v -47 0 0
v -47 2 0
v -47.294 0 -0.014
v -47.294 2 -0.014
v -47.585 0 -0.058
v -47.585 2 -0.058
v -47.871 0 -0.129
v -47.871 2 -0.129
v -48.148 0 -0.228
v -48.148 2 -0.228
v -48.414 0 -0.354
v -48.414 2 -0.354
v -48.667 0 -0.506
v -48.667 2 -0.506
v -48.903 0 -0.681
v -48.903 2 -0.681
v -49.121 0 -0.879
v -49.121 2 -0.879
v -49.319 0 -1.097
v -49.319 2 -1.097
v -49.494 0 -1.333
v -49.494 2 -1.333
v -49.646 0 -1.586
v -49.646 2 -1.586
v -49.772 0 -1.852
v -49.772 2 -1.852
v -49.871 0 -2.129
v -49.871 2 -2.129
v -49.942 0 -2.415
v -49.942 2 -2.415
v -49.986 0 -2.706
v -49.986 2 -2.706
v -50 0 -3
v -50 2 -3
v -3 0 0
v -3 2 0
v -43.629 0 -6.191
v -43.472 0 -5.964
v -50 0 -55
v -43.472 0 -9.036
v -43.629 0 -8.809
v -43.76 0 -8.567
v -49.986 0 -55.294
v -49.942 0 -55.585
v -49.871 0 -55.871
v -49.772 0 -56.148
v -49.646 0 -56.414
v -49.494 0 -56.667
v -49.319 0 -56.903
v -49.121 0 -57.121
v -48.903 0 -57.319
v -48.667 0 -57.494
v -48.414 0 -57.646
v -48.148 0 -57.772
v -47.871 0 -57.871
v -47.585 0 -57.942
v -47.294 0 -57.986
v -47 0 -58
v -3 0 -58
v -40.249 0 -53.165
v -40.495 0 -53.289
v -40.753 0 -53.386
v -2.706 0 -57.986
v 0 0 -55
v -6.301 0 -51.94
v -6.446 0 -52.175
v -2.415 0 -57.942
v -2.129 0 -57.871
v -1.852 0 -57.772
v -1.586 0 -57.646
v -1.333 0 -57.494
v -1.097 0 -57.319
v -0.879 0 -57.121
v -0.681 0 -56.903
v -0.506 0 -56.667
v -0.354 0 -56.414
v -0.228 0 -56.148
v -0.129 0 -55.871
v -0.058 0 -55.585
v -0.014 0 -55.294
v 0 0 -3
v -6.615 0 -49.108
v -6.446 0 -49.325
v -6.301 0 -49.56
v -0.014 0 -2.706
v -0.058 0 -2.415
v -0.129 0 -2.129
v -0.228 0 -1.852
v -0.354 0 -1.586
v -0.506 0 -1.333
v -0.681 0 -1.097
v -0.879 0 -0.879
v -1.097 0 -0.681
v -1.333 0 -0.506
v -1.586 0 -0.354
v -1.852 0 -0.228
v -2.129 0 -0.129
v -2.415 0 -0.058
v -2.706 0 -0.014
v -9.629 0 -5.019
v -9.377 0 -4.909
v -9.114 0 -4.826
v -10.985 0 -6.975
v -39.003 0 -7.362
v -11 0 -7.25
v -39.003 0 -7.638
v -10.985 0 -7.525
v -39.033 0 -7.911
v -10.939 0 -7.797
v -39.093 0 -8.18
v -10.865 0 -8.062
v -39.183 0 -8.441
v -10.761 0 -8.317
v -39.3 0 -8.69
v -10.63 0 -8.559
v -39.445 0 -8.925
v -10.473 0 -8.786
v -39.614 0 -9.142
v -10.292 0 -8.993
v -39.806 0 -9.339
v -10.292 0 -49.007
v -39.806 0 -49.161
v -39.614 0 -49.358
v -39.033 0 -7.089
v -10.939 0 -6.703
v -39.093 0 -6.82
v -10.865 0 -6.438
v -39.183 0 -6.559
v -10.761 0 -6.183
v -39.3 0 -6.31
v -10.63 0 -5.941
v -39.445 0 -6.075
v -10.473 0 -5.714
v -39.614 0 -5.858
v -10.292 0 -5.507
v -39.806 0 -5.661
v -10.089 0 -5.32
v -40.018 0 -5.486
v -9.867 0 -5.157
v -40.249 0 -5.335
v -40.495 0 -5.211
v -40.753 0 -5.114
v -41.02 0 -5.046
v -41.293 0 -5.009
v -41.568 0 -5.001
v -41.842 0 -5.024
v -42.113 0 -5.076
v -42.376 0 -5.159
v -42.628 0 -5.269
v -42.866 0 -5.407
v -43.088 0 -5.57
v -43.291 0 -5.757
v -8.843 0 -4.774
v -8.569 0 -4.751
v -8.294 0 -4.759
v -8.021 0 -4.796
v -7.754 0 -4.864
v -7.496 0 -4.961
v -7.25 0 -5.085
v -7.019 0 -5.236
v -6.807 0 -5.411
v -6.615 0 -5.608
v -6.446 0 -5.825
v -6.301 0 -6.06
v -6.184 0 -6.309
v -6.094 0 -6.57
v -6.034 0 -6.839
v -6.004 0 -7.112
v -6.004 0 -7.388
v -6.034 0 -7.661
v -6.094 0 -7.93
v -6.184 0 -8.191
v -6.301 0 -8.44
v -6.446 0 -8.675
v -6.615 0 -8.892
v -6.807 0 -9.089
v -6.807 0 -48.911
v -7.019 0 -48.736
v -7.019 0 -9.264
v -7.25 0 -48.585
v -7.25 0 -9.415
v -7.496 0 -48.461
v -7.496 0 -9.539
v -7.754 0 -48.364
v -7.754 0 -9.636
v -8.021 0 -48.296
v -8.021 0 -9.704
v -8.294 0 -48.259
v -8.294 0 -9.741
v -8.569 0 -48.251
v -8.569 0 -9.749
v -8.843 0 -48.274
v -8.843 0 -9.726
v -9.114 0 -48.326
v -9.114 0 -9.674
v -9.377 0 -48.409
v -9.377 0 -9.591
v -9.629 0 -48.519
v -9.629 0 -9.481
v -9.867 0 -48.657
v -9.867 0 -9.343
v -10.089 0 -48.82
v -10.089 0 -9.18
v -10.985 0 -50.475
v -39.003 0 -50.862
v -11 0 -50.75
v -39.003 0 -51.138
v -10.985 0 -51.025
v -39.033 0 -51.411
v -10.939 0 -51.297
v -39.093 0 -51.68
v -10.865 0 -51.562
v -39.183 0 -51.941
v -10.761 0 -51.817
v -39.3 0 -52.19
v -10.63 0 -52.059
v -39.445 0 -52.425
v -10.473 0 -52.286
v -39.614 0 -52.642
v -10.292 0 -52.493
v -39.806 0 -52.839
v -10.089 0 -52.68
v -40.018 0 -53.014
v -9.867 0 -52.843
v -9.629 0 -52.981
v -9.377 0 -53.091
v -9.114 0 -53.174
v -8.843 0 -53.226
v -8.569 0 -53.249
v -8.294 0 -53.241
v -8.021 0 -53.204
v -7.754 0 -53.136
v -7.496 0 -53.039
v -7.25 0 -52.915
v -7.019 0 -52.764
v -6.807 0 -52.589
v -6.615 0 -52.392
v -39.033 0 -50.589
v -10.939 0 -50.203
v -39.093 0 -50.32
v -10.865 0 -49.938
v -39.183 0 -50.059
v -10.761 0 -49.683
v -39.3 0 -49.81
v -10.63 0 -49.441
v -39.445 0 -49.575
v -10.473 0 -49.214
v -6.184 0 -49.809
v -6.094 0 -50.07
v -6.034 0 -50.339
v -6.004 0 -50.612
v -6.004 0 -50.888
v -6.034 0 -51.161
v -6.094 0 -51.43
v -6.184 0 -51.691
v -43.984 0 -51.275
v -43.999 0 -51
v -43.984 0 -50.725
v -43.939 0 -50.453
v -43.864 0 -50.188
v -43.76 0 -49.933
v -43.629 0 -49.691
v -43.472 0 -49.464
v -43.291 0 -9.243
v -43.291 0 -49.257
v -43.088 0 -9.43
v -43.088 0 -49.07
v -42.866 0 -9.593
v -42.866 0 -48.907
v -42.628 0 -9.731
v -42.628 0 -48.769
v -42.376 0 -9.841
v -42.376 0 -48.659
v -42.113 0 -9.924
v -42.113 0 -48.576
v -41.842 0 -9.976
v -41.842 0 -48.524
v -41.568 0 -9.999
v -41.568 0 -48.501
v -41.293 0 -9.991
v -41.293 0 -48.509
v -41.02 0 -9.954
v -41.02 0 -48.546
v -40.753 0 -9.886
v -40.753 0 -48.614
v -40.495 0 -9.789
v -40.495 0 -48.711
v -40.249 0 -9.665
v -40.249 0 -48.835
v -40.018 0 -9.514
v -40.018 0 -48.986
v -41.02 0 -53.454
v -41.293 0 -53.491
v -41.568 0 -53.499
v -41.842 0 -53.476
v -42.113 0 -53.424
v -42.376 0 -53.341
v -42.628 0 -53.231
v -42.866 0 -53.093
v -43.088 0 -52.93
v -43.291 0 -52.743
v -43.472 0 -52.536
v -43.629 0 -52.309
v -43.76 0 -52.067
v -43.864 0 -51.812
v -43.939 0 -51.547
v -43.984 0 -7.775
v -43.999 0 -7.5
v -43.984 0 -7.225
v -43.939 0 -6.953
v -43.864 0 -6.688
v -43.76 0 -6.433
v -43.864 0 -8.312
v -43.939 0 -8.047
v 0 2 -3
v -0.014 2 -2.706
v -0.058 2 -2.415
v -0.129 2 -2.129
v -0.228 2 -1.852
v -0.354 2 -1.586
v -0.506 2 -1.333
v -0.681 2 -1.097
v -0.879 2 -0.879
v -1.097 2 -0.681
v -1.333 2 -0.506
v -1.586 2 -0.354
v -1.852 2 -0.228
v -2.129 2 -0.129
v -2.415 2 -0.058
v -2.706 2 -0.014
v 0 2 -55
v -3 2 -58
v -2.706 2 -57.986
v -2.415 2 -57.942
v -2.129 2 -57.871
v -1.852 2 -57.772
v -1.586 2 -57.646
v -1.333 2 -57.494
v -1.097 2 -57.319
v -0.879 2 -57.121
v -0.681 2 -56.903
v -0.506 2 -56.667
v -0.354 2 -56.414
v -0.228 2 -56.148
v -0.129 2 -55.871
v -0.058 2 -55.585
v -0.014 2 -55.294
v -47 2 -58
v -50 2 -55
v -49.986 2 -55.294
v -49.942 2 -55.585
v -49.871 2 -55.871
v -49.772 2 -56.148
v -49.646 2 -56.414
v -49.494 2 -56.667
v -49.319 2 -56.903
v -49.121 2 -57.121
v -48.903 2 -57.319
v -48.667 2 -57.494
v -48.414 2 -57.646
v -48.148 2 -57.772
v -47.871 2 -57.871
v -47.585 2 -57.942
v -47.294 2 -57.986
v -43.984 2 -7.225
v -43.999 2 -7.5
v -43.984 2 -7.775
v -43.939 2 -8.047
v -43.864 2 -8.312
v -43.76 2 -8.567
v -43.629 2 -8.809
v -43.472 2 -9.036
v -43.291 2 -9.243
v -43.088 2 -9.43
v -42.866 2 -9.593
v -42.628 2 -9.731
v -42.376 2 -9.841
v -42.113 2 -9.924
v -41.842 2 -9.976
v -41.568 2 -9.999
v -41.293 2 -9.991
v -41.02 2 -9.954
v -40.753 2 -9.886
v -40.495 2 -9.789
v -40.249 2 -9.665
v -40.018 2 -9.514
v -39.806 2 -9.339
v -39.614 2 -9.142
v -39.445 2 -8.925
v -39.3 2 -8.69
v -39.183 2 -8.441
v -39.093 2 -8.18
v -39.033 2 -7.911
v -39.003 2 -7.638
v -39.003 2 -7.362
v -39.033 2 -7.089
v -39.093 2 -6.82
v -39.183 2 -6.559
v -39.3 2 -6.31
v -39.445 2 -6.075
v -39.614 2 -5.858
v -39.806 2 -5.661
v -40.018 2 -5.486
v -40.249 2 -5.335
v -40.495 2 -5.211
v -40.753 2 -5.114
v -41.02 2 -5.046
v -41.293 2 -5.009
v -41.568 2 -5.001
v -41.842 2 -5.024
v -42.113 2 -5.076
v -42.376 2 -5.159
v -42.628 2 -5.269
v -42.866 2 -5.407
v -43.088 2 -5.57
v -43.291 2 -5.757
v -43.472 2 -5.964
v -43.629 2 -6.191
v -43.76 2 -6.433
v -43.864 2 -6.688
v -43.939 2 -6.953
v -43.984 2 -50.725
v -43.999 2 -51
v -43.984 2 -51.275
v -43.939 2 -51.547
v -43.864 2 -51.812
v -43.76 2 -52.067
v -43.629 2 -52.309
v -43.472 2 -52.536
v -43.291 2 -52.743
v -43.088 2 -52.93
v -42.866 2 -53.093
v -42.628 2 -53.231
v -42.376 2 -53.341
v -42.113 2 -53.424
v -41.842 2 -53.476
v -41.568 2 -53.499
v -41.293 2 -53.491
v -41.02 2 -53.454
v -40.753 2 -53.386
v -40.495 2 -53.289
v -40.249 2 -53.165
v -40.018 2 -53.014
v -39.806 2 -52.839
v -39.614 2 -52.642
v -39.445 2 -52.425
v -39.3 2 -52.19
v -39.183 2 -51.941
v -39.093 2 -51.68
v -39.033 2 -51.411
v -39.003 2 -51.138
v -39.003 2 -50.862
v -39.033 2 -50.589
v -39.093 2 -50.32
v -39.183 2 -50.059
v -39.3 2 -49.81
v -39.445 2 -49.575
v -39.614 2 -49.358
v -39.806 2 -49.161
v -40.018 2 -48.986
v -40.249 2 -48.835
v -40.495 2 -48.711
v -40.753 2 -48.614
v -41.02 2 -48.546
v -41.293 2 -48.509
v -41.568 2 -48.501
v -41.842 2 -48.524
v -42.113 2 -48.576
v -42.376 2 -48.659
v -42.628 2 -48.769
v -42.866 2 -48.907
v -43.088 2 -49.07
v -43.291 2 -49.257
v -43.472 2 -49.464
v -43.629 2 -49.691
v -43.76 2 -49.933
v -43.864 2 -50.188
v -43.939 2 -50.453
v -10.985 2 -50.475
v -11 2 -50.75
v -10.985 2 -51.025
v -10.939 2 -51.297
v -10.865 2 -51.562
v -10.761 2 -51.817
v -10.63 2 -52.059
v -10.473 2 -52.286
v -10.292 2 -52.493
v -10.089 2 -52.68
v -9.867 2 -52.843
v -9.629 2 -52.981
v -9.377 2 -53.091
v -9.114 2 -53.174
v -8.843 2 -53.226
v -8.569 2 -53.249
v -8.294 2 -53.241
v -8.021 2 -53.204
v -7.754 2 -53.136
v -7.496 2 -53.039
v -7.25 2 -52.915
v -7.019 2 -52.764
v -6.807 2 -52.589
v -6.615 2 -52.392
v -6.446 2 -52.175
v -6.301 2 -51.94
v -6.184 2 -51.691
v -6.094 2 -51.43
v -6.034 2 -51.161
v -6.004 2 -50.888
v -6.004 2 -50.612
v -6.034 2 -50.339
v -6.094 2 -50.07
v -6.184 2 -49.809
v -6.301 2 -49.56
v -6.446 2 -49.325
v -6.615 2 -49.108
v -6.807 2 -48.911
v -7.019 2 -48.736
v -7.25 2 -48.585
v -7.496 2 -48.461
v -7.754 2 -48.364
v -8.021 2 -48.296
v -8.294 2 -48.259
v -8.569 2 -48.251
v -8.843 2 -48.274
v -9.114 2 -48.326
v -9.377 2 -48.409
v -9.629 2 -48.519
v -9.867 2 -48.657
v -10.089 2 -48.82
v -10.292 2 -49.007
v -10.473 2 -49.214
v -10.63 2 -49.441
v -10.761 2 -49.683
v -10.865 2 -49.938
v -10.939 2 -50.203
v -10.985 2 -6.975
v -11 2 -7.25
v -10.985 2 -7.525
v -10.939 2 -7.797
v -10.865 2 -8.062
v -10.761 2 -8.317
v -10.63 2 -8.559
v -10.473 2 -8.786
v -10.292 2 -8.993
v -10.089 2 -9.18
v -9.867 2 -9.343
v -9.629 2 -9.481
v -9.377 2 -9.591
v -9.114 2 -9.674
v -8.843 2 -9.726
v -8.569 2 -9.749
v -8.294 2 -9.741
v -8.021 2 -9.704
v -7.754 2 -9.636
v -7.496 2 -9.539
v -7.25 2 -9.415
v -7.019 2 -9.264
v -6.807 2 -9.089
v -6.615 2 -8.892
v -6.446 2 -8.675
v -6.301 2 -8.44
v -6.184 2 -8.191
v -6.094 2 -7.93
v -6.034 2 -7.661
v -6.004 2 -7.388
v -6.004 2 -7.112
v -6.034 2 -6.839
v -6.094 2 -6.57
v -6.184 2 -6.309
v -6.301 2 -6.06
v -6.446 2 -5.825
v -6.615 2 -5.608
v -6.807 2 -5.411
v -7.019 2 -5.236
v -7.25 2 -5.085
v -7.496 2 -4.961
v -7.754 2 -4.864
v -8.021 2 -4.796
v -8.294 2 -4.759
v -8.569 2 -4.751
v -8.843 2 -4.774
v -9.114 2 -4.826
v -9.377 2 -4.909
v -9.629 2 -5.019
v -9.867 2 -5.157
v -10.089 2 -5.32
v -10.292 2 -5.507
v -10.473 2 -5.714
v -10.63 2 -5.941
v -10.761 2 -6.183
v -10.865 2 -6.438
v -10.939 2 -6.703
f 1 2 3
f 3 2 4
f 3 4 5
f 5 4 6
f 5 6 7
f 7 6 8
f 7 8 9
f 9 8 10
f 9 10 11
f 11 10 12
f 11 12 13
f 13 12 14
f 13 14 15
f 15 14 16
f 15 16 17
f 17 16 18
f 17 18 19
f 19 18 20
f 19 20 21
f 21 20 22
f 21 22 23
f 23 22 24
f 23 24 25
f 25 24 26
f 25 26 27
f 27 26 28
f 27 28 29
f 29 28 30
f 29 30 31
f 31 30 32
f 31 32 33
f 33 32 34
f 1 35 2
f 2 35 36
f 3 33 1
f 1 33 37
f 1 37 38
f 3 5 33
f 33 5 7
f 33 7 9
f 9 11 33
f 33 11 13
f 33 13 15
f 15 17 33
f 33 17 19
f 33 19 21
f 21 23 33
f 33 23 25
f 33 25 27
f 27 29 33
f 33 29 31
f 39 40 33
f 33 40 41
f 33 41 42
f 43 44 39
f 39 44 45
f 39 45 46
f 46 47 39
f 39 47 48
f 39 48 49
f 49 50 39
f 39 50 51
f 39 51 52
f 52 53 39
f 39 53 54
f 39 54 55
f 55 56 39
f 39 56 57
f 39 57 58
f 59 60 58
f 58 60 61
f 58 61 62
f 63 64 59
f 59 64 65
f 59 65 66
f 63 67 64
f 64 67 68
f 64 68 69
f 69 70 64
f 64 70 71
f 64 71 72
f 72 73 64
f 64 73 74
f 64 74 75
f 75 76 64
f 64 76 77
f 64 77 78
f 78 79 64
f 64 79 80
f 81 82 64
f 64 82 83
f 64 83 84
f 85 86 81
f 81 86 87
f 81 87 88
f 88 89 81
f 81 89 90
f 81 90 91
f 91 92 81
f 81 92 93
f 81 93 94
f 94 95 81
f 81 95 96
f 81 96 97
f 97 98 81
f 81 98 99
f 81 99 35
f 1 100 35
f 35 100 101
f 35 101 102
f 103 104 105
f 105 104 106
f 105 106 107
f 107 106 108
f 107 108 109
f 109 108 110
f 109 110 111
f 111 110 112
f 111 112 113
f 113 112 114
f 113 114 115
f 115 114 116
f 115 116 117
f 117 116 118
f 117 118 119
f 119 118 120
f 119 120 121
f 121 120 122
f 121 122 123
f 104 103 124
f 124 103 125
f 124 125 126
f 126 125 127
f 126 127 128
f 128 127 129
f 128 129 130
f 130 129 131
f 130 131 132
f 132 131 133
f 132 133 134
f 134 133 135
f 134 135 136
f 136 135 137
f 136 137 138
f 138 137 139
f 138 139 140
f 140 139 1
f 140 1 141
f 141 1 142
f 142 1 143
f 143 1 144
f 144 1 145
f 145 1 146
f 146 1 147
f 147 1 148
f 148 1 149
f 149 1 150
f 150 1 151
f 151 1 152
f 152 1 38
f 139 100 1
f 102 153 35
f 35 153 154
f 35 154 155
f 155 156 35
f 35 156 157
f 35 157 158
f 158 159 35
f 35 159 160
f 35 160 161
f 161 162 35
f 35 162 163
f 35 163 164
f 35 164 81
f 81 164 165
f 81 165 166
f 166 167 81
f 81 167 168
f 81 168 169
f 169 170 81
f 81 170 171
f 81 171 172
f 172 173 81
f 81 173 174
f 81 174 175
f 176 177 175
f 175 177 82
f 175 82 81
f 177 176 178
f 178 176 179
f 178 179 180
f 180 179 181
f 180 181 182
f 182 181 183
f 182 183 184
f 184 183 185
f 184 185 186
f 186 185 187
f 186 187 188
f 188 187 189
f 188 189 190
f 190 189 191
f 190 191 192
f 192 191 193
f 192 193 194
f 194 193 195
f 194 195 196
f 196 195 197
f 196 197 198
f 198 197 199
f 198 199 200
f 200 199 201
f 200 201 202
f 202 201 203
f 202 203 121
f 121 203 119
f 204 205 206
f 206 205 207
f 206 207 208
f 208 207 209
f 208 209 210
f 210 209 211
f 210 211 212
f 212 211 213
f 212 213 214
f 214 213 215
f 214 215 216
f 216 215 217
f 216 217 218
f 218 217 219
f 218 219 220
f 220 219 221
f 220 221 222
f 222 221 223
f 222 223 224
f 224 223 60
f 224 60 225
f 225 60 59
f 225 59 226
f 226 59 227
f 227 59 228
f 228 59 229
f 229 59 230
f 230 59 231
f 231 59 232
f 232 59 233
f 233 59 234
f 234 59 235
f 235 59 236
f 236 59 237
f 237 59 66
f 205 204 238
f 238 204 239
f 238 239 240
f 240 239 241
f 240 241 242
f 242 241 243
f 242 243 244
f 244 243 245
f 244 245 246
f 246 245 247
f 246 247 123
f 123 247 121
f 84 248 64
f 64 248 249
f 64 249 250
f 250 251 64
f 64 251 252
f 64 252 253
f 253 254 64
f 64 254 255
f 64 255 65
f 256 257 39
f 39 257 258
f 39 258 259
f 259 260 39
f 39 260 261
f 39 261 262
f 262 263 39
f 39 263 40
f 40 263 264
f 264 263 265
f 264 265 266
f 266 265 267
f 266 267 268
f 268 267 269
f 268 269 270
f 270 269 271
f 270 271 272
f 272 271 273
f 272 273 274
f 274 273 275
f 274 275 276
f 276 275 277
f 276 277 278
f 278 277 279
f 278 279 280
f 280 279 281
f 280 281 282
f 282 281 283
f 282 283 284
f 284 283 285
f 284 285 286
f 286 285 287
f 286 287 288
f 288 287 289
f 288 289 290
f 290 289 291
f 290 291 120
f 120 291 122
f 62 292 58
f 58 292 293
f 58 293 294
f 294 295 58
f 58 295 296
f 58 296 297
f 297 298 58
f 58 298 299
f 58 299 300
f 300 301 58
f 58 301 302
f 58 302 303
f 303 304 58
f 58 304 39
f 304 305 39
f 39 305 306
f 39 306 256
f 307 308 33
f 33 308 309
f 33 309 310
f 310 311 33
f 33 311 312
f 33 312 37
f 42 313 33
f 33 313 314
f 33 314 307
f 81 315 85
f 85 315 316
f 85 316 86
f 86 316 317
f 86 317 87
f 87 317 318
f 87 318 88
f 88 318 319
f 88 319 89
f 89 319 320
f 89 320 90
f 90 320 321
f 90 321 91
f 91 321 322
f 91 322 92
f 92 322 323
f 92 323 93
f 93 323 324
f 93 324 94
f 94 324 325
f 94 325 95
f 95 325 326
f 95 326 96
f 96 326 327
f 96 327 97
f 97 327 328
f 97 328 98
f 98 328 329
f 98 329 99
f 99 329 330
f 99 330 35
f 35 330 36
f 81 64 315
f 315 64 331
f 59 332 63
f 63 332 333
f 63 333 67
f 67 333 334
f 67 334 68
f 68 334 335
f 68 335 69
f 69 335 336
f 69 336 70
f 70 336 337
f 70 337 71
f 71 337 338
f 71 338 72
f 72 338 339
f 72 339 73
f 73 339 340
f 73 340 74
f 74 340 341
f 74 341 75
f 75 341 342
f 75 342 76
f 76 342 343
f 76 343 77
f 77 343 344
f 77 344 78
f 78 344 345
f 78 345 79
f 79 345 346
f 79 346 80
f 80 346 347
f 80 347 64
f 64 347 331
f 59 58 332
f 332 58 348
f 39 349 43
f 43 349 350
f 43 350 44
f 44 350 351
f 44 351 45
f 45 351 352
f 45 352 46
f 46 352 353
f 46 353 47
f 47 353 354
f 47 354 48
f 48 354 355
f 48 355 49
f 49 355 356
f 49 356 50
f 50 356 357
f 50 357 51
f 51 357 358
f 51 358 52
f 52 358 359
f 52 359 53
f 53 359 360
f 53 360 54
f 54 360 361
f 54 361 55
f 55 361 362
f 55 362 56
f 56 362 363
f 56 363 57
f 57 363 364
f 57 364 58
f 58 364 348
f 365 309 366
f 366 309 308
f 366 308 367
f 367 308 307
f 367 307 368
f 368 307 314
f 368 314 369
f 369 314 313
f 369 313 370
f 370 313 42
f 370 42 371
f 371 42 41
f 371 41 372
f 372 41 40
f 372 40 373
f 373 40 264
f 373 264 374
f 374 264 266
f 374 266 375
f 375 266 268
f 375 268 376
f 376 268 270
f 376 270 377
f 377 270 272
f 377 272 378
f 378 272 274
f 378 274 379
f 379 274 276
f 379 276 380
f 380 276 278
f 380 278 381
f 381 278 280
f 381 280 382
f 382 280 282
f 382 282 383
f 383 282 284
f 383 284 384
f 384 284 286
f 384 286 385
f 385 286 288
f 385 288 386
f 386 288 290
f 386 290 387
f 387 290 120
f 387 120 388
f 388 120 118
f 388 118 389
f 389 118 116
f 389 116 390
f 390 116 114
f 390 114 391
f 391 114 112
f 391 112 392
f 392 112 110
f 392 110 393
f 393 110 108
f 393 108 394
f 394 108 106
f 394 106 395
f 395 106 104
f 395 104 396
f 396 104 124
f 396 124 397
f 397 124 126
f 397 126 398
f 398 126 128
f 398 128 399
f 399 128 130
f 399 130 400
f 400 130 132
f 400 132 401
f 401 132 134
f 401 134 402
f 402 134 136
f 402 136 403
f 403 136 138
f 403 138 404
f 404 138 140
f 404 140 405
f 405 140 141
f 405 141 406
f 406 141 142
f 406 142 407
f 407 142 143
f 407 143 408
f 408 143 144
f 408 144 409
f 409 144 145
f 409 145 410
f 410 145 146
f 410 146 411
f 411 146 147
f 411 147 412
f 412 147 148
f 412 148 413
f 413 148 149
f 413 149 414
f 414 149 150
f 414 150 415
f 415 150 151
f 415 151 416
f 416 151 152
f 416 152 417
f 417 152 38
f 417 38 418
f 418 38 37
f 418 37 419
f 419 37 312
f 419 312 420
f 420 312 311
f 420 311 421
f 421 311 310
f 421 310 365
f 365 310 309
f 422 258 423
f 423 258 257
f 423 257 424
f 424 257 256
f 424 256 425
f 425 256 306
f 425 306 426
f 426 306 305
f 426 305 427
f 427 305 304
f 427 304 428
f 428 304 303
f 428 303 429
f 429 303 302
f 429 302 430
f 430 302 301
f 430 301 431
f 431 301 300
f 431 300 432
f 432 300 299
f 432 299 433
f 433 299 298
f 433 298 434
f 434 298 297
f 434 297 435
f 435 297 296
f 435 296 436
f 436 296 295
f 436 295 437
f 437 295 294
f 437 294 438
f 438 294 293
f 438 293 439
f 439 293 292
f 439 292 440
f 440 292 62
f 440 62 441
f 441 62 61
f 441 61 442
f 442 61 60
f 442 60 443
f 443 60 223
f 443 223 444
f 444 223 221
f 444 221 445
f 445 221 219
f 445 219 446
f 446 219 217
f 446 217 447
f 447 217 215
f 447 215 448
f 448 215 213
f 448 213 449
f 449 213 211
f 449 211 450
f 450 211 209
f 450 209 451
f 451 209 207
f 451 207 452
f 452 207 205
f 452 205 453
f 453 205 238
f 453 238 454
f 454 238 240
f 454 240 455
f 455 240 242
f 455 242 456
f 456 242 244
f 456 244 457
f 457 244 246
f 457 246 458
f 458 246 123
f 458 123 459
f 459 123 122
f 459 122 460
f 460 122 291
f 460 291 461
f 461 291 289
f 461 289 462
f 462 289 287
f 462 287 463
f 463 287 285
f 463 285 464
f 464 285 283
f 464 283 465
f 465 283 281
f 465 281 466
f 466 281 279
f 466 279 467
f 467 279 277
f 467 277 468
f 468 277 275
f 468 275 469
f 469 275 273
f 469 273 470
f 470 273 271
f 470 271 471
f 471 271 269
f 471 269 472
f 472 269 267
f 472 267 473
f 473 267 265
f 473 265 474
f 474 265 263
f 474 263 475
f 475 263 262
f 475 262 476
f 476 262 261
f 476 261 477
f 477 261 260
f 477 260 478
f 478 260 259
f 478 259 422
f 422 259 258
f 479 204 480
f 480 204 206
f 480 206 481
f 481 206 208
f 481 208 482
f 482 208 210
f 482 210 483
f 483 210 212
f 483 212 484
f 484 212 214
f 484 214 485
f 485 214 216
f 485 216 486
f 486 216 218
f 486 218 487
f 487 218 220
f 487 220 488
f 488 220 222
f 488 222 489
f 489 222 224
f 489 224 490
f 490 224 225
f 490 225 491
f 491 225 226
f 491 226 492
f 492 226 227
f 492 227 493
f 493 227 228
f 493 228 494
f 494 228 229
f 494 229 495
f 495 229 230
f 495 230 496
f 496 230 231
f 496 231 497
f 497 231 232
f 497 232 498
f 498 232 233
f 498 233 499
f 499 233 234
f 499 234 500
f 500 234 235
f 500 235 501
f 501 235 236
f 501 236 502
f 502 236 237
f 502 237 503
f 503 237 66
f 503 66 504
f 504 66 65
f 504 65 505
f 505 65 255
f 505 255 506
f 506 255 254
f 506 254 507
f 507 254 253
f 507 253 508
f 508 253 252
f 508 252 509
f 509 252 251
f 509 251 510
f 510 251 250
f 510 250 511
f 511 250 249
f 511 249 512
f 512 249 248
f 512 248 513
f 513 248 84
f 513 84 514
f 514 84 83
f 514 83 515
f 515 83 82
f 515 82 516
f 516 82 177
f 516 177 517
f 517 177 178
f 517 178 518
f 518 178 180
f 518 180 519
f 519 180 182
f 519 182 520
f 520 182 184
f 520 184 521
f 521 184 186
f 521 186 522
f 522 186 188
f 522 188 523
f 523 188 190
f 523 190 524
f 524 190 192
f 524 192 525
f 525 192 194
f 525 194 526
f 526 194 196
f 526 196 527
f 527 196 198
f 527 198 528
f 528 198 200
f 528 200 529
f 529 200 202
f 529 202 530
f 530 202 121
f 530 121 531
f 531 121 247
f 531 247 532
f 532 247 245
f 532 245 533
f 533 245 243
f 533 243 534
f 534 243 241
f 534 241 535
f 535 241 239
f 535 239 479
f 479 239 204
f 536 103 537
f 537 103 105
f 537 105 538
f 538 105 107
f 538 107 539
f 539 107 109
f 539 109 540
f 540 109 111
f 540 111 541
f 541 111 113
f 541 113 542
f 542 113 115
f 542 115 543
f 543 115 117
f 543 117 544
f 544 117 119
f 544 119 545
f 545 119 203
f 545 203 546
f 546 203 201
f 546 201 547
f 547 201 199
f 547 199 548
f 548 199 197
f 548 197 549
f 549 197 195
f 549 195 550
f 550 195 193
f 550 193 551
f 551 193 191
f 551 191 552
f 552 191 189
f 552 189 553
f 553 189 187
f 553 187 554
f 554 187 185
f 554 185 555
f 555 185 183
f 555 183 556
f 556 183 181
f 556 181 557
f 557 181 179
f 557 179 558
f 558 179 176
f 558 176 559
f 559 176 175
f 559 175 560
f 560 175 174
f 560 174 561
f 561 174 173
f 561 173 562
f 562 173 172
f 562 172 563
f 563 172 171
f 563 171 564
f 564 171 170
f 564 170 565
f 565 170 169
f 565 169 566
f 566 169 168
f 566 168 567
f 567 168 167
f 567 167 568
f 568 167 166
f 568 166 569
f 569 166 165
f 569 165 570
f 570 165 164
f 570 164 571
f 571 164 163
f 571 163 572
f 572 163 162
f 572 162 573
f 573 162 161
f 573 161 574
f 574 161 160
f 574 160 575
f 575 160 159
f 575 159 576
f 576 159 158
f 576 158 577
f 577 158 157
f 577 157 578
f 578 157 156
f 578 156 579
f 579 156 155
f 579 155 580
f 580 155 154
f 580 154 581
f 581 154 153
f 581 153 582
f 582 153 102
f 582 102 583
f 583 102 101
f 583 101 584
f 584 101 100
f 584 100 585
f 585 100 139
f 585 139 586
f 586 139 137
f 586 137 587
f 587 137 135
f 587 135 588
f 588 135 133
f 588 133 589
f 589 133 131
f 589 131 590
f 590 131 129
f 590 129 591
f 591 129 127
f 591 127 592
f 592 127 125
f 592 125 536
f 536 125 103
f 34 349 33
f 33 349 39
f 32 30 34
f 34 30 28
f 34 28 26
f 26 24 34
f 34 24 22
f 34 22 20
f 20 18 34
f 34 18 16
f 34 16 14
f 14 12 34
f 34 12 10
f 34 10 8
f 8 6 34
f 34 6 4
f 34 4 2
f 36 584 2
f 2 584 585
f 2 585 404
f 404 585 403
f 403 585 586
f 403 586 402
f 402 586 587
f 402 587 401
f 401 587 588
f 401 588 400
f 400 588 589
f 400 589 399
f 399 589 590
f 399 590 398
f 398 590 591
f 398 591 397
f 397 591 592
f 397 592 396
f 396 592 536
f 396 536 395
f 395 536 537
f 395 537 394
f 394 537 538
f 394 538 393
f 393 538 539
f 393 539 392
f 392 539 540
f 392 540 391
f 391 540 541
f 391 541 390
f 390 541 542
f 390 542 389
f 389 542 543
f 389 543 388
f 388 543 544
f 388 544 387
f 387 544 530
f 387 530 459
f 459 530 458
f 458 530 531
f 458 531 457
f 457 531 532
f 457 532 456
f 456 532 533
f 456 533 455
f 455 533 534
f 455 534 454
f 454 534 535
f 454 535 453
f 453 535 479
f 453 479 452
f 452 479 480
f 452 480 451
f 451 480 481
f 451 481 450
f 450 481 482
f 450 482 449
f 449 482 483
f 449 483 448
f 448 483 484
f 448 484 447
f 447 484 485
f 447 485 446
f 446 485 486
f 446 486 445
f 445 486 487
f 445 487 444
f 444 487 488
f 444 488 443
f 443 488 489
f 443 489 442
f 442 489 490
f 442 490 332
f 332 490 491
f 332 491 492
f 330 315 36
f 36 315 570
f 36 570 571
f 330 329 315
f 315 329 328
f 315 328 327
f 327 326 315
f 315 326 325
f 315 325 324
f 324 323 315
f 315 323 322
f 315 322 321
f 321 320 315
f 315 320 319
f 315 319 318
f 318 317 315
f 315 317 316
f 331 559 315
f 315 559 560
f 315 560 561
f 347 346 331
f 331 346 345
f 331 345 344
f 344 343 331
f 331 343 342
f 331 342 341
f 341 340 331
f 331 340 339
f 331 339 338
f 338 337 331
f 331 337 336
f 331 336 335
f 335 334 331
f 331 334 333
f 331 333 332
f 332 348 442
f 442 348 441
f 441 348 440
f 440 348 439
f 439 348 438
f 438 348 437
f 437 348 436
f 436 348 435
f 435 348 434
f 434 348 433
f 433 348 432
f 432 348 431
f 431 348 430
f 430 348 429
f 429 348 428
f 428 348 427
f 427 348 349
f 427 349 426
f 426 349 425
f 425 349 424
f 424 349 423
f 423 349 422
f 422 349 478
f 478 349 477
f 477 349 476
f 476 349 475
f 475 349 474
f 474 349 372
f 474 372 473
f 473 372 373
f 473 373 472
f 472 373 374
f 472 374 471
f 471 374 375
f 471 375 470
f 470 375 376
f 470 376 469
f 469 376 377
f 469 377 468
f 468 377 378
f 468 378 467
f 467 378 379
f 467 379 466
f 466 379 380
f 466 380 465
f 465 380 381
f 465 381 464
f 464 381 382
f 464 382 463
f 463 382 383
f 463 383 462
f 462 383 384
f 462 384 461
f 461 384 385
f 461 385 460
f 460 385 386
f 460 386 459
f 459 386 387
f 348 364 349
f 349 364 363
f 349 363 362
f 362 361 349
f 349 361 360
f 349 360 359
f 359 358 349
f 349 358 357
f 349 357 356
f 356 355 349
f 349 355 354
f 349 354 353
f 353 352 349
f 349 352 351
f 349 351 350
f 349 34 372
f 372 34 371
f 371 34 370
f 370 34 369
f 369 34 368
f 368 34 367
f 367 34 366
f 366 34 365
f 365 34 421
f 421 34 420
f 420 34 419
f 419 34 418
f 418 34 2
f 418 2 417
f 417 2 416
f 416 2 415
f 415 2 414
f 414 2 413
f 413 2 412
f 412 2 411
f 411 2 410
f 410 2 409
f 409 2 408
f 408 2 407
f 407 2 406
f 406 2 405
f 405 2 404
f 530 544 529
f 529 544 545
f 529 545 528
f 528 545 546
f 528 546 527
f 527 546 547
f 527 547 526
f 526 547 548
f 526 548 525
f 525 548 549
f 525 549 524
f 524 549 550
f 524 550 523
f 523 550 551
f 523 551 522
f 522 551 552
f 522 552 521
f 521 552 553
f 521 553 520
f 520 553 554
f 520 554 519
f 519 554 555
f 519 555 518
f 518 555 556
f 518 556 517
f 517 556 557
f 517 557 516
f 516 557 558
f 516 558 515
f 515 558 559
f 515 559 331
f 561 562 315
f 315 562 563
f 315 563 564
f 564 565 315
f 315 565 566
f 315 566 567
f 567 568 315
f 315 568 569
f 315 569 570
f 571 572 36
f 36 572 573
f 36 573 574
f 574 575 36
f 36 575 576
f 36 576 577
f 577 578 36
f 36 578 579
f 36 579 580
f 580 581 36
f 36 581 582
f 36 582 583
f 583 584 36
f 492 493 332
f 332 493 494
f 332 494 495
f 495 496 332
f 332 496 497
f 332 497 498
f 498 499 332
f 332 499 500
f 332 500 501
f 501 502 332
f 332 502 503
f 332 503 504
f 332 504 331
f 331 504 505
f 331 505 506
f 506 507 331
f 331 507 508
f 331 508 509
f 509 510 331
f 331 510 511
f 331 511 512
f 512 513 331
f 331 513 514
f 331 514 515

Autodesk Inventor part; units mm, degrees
ref_plane "YZ Plane" through (0, 0, 0) normal (1, 0, 0) x (0, 1, 0)
ref_plane "XZ Plane" through (0, 0, 0) normal (0, 1, 0) x (-1, 0, 0)
ref_plane "XY Plane" through (0, 0, 0) normal (0, 0, 1) x (1, 0, 0)
sketch "Sketch1" plane through (0, 0, 0) normal (0, 1, 0) x (-1, 0, 0)
  line L0 (0, 0) -> (50, 0)
  line L1 (50, 0) -> (50, -58)
  line L2 (50, -58) -> (0, -58)
  line L3 (0, -58) -> (0, 0)
  circle A0 centre (41.4991, -7.5) radius 2.5
  circle A1 centre (41.4991, -51) radius 2.5
  circle A2 centre (8.5, -50.75) radius 2.5
  circle A3 centre (8.5, -7.25) radius 2.5
  dimension "d0" = 50
  dimension "d1" = 58
  dimension "d2" = 5
  dimension "d3" = 5
  dimension "d4" = 5
  dimension "d5" = 5
  dimension "d7" = 8.5
  dimension "d8" = 33
  dimension "d9" = 33
  dimension "d10" = 7.25
  dimension "d11" = 7
  dimension "d14" = 43.5
  dimension "d15" = 43.5
extrude "Extrusion1" add sketch "Sketch1" along normal blind 2
fillet "Fillet1" radius 3 4 edges at (-50, 1, -58) (0, 1, -58) (0, 1, 0) (-50, 1, 0)
properties part number "PCB_design"
